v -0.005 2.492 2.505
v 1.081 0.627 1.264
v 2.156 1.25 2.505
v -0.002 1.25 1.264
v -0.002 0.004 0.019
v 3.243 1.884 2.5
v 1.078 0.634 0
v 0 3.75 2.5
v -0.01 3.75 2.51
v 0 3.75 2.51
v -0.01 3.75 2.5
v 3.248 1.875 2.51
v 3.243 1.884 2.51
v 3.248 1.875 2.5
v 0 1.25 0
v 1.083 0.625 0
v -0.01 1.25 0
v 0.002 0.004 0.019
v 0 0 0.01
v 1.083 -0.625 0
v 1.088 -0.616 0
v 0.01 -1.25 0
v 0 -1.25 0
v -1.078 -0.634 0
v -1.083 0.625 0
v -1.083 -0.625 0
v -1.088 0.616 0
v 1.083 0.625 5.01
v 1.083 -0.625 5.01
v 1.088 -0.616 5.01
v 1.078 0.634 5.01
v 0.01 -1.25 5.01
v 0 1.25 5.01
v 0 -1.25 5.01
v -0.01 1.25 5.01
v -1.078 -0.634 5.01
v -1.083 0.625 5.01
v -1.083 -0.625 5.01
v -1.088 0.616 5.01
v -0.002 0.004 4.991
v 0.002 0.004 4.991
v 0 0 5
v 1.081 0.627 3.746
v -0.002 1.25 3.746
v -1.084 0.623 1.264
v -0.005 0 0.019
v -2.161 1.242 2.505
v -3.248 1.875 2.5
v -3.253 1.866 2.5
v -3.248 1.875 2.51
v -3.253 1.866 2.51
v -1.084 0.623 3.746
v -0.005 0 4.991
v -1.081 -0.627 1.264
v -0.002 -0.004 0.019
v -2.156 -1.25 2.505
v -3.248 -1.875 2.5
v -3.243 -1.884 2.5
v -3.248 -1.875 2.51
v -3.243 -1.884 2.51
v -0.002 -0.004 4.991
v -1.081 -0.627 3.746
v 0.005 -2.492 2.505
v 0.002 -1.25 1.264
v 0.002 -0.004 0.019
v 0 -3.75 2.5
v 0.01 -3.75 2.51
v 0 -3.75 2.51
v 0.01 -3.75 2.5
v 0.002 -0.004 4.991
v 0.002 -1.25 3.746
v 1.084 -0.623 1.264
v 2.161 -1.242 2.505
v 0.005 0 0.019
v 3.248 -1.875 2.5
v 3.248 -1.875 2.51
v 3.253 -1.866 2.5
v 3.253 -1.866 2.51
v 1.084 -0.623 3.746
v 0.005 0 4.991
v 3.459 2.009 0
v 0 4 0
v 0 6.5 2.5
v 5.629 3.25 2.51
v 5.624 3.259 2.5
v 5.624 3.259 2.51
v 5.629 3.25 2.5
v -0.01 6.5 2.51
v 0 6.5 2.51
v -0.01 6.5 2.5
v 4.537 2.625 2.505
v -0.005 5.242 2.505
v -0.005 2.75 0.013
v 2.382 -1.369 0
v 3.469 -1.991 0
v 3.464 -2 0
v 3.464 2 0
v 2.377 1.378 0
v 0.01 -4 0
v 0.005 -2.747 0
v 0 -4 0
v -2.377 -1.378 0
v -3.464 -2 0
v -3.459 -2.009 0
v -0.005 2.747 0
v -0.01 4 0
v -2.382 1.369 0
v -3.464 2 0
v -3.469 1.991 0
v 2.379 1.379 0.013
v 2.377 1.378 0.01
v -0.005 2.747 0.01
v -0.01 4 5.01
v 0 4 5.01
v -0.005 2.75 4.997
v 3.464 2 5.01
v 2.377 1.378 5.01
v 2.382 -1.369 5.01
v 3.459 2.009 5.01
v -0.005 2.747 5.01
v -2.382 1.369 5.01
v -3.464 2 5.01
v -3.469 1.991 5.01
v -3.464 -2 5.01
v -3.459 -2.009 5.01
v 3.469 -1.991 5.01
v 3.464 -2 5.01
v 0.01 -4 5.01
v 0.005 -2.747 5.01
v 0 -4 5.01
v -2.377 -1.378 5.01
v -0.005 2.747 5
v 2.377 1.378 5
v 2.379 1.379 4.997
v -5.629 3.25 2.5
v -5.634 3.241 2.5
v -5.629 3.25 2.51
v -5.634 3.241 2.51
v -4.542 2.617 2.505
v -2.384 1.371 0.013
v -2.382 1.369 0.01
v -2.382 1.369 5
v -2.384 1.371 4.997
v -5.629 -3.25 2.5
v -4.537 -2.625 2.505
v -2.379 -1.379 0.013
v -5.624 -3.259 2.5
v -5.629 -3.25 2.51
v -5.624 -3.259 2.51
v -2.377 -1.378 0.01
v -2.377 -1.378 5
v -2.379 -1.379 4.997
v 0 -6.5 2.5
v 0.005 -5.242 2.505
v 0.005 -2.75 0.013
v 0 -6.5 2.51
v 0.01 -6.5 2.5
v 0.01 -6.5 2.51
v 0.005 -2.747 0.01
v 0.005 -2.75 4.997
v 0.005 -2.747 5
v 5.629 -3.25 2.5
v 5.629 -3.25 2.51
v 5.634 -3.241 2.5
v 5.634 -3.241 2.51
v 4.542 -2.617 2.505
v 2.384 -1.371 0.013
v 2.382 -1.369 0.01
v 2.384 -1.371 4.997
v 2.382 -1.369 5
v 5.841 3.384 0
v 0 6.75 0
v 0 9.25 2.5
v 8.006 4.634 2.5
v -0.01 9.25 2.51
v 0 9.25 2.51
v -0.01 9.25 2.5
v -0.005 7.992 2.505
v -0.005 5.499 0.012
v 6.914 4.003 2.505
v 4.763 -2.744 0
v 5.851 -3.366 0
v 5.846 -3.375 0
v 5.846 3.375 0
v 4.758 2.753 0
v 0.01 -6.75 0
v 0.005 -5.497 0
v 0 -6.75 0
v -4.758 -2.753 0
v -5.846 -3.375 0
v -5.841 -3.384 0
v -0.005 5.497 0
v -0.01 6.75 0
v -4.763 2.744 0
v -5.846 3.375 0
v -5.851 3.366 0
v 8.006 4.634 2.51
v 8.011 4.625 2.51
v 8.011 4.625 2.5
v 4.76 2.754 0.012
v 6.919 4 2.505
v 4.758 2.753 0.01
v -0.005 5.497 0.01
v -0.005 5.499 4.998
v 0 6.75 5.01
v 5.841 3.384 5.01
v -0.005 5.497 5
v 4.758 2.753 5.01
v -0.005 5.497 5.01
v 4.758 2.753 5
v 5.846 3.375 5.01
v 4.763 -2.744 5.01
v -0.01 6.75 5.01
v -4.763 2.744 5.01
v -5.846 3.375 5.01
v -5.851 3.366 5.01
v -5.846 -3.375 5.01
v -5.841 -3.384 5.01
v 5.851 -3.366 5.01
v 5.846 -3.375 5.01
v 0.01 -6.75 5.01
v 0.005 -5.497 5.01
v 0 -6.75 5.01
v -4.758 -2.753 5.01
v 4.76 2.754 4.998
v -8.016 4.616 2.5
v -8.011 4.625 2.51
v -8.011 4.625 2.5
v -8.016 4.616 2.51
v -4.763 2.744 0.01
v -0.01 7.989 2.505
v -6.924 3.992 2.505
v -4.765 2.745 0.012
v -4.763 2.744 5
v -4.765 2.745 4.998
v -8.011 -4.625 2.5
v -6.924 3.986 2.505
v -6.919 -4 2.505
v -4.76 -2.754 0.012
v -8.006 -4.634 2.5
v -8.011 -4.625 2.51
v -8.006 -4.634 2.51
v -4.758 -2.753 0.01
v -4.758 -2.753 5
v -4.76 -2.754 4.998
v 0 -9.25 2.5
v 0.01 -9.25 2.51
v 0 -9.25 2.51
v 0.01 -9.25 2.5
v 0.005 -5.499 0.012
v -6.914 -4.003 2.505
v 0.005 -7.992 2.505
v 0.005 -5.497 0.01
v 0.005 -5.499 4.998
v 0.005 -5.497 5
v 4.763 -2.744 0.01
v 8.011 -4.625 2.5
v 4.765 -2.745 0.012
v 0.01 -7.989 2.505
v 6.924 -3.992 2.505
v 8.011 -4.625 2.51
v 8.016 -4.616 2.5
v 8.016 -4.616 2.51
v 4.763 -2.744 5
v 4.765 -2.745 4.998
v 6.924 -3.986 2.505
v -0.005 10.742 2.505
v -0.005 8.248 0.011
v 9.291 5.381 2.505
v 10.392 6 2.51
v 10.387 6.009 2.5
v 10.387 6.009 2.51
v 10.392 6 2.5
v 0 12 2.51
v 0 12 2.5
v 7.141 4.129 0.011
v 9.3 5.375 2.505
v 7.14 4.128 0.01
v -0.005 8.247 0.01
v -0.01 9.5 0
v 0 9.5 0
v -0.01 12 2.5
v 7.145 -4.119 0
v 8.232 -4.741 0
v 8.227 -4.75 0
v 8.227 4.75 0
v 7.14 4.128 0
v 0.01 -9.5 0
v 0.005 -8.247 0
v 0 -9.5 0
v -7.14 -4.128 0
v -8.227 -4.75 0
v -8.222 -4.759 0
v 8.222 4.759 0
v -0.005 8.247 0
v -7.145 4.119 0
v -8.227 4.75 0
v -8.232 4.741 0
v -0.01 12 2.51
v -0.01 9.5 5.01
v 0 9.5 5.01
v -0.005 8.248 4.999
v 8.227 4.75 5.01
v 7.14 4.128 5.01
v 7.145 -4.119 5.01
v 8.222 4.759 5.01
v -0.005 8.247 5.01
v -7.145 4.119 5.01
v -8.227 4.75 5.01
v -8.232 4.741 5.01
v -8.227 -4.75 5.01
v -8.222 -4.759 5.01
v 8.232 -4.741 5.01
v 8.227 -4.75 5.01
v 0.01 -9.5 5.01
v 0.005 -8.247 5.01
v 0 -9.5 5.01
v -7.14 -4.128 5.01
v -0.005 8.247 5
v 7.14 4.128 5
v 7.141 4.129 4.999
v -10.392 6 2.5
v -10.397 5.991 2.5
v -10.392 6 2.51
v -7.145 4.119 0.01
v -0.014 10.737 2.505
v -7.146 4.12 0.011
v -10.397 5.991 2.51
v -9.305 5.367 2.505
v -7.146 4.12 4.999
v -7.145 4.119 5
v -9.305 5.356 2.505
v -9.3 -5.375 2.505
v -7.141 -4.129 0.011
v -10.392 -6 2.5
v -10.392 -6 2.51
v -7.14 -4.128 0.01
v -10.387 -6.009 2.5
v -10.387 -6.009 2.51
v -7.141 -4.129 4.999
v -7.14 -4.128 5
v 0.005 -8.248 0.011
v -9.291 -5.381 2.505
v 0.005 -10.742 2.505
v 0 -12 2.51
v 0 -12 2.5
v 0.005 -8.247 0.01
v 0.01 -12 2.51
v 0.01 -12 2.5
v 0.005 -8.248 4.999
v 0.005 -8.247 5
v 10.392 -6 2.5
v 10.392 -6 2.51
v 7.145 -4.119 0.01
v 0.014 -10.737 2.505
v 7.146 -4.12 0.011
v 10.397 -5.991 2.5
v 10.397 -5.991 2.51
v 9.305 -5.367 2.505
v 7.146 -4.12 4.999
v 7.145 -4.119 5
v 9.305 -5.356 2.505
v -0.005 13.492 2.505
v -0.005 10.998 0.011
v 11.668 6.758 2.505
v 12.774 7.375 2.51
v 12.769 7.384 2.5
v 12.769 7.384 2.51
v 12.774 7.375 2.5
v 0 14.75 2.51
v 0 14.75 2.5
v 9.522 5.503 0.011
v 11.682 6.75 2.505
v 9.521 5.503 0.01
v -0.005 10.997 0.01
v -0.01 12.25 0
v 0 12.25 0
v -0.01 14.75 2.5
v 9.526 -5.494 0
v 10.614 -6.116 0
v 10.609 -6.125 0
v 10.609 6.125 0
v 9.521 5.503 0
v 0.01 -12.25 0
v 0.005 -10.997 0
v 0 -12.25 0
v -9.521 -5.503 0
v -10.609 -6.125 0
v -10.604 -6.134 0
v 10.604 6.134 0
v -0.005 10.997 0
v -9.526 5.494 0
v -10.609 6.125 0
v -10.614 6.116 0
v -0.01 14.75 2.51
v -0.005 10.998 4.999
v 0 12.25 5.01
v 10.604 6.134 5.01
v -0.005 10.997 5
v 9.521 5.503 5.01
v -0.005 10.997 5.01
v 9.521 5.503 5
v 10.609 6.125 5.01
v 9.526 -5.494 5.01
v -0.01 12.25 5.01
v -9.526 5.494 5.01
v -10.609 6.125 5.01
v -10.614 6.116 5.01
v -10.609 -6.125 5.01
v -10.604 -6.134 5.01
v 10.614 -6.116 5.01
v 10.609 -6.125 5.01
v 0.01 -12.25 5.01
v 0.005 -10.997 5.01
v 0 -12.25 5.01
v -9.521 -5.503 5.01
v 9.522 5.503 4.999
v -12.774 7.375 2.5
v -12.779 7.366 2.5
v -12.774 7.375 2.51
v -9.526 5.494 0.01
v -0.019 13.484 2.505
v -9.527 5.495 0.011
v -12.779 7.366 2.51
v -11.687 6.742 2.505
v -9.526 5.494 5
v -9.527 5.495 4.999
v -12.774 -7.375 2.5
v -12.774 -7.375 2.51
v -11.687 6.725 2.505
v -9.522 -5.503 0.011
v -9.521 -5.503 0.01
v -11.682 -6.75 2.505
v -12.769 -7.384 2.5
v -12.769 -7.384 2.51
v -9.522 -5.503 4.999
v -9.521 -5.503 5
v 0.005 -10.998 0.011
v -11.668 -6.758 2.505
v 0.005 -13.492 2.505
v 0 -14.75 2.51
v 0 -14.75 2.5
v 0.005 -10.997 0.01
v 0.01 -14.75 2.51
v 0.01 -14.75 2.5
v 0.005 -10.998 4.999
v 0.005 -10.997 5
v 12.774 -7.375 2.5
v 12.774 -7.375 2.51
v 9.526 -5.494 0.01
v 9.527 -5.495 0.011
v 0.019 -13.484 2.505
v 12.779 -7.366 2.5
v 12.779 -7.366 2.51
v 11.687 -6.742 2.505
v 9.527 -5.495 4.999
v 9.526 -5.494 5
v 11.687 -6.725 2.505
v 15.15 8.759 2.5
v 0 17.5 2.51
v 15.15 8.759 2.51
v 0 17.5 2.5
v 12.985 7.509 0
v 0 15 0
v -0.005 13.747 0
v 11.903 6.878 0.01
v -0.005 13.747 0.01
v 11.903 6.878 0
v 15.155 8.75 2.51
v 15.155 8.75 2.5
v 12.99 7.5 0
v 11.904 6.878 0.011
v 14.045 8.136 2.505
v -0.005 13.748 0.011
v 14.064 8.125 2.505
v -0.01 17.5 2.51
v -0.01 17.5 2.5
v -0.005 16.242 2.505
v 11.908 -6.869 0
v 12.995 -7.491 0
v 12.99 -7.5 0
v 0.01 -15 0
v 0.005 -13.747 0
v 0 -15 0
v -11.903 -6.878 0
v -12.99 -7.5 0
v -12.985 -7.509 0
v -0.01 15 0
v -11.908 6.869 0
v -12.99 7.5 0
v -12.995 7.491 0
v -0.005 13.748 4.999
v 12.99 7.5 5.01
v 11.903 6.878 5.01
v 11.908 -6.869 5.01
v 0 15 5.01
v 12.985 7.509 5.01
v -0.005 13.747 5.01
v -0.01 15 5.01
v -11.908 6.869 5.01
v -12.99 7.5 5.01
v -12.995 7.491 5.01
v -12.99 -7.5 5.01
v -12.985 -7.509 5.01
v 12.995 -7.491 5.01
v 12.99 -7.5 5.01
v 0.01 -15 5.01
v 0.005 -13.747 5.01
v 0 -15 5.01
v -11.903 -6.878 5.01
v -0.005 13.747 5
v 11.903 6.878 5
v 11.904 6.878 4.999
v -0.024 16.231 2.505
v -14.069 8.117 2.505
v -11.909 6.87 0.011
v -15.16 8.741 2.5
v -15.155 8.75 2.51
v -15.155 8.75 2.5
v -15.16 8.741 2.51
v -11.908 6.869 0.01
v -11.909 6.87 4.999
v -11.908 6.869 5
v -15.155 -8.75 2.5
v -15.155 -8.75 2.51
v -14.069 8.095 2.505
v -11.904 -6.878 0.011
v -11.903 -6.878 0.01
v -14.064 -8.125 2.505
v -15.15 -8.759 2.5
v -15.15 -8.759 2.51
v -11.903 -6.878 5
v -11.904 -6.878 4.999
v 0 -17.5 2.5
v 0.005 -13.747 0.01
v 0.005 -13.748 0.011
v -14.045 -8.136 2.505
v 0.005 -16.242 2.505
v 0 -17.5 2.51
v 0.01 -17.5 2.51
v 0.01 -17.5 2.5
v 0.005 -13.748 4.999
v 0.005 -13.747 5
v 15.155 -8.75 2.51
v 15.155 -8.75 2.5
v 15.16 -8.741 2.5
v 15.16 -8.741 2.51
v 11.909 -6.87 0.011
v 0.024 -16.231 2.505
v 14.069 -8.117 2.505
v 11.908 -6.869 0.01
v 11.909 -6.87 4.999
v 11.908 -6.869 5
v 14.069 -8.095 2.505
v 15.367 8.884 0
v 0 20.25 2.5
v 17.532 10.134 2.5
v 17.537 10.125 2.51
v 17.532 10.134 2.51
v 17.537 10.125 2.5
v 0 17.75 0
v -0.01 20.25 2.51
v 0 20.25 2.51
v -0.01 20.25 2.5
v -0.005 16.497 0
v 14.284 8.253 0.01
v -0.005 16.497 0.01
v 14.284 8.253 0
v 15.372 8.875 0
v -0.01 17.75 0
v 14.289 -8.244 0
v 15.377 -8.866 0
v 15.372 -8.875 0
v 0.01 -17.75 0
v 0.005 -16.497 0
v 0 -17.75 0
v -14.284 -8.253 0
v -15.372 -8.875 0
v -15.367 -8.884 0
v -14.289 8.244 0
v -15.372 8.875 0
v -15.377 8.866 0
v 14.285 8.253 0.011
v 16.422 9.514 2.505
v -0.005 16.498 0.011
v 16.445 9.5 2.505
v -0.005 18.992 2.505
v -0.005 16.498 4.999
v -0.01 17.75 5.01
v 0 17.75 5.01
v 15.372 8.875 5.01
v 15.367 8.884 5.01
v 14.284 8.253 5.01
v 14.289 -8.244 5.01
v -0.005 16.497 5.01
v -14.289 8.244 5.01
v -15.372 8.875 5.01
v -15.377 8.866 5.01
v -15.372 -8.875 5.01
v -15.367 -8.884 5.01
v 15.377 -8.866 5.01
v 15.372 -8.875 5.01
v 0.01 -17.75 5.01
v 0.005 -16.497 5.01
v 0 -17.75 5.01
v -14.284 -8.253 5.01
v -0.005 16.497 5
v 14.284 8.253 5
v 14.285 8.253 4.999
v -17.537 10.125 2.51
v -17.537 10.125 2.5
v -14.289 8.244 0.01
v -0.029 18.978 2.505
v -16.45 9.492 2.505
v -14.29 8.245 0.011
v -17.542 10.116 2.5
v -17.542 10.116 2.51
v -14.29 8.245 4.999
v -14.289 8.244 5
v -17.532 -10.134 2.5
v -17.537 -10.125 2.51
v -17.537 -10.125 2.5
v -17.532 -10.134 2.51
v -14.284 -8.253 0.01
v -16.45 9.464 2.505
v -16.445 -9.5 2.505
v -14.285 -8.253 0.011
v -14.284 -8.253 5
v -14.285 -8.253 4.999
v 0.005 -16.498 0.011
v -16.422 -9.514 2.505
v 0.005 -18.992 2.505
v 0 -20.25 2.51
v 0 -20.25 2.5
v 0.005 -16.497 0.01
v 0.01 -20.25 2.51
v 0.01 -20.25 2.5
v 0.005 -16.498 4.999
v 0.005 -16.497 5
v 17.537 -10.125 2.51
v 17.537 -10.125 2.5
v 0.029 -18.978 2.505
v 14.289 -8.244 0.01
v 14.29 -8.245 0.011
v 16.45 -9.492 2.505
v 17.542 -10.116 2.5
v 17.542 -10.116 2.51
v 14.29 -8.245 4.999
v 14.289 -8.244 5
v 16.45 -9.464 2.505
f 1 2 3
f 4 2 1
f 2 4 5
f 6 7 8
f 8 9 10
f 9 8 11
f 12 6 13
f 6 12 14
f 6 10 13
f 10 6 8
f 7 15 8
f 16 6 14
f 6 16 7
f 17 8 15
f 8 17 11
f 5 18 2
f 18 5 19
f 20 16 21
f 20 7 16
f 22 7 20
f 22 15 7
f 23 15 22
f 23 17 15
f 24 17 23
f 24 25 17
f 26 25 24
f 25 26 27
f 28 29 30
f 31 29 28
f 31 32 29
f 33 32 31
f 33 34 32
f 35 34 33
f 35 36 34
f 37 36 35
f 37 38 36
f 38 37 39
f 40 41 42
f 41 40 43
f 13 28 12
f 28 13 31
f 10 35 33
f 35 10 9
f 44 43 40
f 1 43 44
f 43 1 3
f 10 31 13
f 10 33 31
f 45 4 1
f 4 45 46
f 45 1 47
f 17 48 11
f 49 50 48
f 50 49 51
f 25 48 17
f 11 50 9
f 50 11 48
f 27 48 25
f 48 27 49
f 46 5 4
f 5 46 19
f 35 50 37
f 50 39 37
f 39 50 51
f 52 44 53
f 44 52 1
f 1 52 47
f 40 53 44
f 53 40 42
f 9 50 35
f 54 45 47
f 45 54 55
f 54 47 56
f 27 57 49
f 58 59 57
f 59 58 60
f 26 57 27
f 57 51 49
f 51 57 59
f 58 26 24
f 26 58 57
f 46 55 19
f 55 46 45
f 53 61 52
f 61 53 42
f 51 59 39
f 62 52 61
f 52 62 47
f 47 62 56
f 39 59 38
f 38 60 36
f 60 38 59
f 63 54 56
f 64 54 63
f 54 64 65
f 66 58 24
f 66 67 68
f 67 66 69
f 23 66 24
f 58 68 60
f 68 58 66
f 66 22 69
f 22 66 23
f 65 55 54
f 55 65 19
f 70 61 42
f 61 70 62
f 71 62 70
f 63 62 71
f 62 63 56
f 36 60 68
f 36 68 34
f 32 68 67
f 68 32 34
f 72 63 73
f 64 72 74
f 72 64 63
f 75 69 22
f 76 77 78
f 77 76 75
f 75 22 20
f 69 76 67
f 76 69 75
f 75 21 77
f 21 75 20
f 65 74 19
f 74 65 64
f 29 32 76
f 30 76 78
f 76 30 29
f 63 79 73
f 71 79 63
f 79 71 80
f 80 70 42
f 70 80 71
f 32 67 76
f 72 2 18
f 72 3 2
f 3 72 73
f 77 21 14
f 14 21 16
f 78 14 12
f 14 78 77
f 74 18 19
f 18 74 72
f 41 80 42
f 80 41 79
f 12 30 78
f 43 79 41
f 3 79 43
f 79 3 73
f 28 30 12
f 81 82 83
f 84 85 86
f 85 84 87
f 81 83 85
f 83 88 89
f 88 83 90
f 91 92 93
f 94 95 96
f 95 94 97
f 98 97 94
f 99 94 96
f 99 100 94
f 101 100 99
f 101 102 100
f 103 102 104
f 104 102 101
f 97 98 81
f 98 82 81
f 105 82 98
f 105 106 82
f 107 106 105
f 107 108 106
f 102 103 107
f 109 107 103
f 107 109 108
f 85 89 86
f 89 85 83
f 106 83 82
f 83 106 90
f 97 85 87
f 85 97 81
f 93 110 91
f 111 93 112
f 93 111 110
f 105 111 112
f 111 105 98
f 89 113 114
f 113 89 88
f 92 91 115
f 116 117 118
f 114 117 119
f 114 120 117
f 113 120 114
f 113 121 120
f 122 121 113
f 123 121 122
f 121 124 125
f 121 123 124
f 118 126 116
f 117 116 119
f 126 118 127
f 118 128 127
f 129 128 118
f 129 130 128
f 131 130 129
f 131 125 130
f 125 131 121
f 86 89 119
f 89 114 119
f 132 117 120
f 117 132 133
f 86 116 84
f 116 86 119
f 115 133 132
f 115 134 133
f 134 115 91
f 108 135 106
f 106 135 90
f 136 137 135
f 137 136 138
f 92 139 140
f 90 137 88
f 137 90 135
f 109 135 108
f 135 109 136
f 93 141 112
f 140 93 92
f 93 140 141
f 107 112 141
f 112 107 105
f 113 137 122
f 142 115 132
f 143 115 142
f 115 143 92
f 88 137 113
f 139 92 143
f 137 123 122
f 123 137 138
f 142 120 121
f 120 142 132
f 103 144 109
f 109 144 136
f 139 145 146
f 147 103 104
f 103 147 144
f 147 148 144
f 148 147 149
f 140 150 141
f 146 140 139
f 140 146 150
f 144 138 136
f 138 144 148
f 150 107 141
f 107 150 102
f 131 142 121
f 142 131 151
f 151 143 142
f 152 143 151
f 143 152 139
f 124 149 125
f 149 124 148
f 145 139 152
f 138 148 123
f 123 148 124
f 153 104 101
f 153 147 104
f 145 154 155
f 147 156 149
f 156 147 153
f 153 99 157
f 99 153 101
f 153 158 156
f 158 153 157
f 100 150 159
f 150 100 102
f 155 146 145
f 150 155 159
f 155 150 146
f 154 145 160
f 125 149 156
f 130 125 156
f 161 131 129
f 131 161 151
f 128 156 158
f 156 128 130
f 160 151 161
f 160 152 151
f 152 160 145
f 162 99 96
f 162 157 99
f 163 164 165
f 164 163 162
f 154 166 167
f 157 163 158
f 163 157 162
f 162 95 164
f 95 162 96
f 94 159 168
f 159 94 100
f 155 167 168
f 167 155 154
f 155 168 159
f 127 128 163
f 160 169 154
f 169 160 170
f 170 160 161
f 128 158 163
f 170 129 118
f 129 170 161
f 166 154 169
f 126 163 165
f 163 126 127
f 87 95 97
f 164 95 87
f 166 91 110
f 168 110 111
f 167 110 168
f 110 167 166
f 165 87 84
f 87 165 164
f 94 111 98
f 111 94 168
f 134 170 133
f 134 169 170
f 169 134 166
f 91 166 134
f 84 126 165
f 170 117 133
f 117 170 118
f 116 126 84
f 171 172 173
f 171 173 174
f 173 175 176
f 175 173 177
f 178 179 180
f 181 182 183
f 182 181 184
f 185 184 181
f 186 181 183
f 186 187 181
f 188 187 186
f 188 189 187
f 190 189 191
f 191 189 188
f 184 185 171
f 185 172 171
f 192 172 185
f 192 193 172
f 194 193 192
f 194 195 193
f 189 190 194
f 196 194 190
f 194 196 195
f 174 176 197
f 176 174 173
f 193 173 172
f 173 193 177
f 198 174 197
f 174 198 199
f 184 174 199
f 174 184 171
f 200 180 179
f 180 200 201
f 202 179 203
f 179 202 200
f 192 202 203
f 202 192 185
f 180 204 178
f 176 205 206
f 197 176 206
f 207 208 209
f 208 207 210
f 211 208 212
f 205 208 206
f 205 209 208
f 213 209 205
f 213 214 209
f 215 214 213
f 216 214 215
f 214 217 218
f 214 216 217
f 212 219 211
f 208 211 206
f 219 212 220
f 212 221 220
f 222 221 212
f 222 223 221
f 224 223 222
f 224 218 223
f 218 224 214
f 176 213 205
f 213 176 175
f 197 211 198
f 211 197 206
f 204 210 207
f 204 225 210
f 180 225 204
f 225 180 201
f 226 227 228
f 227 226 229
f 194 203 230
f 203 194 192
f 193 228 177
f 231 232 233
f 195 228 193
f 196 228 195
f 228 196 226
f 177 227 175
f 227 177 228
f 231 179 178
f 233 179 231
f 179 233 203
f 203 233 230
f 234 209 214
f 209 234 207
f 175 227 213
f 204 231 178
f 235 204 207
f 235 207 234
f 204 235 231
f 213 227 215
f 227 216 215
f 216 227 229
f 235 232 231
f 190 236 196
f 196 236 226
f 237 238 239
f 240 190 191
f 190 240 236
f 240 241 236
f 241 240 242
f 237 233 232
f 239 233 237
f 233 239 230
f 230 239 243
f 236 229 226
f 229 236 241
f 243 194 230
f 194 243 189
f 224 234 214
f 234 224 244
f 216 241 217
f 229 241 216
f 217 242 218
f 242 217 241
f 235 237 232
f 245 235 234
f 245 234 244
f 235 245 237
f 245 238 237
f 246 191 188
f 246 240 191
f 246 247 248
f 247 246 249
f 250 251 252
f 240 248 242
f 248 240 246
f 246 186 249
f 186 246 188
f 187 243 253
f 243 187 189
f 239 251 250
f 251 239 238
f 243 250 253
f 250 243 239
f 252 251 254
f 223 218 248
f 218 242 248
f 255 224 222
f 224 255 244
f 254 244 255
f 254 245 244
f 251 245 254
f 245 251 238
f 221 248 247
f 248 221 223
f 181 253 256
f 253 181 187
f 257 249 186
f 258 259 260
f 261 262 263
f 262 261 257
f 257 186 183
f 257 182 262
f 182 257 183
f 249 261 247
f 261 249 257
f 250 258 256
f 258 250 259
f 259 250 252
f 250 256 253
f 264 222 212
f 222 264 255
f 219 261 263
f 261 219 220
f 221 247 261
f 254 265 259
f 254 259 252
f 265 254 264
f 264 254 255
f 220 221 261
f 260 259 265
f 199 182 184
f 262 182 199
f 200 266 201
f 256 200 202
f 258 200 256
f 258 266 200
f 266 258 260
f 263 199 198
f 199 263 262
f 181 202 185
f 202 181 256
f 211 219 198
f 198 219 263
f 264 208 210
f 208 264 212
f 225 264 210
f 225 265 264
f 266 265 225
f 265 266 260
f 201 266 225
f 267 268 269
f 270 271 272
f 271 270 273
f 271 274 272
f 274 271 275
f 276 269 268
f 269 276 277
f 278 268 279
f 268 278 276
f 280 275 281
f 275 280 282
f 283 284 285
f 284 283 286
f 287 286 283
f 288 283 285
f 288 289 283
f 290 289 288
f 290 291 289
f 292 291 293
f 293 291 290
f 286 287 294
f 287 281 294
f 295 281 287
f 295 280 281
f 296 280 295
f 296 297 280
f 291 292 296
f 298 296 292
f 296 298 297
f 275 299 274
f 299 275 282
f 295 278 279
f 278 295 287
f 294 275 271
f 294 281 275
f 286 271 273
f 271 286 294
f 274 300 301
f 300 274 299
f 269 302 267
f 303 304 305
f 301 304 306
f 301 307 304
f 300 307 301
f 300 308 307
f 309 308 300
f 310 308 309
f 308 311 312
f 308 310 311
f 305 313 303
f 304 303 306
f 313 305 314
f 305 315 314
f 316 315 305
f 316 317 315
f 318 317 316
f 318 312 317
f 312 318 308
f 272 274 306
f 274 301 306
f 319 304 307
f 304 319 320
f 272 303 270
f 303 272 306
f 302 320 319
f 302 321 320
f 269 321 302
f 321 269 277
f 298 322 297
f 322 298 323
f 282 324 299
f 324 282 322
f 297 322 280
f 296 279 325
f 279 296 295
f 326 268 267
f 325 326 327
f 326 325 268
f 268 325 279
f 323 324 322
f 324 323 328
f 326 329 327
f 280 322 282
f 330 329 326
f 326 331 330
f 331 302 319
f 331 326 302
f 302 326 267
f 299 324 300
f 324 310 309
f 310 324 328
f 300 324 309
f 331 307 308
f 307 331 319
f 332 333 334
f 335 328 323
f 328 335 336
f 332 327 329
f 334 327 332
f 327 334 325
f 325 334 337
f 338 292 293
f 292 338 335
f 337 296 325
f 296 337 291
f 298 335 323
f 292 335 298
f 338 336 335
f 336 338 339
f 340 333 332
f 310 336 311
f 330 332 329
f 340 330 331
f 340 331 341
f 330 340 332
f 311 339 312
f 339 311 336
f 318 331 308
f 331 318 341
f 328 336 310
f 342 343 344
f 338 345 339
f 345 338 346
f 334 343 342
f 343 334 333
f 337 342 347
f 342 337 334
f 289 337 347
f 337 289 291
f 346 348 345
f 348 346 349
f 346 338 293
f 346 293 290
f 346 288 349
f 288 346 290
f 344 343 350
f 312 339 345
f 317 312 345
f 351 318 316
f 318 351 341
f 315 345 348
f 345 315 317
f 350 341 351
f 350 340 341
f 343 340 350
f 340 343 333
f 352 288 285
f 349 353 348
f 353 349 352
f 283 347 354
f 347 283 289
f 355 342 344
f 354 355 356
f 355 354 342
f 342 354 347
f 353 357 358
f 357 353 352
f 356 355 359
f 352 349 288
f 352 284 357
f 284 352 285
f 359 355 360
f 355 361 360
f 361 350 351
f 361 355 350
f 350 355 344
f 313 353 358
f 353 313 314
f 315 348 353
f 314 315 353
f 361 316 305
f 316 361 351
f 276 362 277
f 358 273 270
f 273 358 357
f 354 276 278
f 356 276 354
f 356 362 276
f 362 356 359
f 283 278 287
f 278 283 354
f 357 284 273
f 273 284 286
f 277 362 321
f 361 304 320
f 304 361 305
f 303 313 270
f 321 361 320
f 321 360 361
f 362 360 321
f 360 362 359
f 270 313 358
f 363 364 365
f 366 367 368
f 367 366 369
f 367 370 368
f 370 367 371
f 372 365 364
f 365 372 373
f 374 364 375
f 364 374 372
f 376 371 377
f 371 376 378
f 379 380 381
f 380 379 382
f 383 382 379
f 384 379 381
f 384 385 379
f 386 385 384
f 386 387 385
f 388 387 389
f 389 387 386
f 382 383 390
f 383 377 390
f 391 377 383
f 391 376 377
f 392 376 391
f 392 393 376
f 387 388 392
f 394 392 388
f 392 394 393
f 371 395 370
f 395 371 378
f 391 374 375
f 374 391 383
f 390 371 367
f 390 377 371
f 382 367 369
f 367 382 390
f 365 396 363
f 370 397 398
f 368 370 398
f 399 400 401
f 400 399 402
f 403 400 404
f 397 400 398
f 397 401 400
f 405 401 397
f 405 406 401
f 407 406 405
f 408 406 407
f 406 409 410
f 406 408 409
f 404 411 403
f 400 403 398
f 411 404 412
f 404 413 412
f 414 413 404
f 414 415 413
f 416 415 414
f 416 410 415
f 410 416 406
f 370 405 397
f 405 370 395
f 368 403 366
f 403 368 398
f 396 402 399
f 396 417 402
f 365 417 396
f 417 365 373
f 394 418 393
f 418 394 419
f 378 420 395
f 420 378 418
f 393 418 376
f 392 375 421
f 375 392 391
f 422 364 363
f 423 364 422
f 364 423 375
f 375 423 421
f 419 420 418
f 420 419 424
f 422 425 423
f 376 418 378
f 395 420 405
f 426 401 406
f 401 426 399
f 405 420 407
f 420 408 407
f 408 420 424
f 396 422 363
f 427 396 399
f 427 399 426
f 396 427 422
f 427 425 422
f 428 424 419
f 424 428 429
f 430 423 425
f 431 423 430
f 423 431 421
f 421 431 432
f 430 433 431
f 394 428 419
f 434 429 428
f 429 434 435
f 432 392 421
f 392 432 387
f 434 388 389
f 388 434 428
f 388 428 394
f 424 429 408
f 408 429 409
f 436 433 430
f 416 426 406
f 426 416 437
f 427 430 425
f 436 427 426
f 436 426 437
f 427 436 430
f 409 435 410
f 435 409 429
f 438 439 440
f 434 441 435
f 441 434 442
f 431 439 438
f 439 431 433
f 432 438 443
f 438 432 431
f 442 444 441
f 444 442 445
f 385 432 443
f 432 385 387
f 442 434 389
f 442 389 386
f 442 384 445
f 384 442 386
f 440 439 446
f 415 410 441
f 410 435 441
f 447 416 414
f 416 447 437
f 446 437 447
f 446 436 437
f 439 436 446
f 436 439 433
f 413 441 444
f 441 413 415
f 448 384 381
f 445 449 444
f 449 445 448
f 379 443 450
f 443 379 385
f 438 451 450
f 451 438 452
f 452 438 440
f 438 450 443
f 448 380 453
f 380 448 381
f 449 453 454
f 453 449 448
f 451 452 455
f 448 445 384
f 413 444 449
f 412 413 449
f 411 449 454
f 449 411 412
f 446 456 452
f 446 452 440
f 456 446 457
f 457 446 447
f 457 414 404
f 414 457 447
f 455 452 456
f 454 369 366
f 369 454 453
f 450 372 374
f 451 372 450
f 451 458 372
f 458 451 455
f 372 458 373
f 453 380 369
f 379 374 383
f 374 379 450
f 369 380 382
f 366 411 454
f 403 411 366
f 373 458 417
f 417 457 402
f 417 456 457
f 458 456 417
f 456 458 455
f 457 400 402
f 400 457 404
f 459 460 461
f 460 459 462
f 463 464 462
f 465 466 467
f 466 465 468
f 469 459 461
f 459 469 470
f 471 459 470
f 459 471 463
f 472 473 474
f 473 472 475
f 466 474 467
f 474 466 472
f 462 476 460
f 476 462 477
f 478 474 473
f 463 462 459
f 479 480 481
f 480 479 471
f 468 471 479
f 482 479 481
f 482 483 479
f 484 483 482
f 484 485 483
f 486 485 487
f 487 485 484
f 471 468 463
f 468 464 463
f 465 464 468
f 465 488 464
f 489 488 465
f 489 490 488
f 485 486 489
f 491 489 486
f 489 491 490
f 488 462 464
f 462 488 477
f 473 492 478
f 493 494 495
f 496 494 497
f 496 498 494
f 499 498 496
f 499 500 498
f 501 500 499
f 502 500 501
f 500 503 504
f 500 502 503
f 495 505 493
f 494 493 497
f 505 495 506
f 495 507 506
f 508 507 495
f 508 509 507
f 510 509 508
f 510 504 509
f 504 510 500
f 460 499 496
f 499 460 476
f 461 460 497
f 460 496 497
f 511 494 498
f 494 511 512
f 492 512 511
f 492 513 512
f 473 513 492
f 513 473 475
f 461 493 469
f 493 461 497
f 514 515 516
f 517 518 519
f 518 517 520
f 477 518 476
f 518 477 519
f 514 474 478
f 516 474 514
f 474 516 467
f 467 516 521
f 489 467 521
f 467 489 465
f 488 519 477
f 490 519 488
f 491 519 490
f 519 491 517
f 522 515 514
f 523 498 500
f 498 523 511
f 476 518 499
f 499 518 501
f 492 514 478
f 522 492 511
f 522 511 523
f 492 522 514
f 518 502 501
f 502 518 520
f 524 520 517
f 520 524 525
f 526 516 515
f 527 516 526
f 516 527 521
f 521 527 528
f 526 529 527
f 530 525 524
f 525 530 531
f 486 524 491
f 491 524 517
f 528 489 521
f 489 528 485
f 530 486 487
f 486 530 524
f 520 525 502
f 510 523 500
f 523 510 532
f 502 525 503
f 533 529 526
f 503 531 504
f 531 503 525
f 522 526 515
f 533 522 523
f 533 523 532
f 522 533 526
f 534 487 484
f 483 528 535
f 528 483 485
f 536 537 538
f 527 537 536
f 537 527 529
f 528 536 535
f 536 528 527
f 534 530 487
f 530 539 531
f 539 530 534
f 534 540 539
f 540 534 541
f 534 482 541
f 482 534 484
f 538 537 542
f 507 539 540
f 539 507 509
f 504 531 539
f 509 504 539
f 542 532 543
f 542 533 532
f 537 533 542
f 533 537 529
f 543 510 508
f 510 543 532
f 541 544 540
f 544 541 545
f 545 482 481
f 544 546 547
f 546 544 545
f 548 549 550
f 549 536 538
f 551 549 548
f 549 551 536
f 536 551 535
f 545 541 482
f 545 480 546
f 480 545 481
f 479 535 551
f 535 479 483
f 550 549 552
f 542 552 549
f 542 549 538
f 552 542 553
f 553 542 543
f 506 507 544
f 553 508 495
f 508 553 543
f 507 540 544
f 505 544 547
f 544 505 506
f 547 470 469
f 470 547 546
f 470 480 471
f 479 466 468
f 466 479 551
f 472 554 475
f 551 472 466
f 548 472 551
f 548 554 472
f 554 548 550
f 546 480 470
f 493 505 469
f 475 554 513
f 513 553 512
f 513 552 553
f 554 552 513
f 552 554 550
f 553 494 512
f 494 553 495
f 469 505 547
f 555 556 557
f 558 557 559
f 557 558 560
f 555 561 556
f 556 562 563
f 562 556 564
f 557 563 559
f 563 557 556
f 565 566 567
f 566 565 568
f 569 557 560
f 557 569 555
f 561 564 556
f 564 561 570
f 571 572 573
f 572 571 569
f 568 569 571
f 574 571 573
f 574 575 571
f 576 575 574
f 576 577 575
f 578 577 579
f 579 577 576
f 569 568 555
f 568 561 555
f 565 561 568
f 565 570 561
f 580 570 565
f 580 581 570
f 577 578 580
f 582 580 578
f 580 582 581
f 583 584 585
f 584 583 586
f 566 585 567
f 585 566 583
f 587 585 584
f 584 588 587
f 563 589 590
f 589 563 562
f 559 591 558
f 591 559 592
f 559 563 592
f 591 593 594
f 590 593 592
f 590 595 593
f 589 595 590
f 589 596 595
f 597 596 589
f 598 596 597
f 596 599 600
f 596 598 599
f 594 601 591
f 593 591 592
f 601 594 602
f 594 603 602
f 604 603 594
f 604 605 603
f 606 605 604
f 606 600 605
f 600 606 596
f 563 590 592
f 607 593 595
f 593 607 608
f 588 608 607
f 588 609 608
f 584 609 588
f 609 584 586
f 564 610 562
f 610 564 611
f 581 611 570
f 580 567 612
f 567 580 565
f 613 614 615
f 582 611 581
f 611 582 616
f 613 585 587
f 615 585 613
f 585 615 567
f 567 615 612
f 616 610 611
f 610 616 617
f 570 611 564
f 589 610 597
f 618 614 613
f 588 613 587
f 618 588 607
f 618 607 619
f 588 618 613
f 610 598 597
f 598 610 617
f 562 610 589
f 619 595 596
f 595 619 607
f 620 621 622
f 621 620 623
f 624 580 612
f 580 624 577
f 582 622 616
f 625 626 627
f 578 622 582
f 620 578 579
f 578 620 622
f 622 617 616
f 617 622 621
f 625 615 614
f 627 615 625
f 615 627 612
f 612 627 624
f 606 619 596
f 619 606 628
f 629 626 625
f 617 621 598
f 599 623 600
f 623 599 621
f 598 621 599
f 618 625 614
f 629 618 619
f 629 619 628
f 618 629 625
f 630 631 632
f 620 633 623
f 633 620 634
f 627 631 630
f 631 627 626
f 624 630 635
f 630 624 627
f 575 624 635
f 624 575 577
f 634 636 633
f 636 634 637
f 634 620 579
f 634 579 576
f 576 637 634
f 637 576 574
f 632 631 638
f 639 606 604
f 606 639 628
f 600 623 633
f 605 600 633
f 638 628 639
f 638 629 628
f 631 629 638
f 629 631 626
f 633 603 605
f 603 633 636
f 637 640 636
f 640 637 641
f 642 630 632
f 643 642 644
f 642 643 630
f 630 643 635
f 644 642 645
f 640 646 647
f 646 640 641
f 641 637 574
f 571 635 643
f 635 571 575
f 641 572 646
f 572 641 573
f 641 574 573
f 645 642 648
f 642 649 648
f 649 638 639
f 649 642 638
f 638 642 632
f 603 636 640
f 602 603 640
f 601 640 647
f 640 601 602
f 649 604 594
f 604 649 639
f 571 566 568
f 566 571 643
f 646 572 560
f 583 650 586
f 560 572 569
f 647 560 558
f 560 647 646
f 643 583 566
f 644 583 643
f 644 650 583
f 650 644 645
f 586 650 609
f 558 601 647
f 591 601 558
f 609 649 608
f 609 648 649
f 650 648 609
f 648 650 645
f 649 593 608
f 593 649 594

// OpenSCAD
// file: lib.scad
NB_SIDES   = 6;
ATOM       = .01;
CUT        = $preview;

module side_bottom(base, height, shift) {
    hull() {
        cube([base, ATOM, ATOM]);
        translate([shift, 0, height/2])
        cube([base, ATOM, ATOM]);
    }
}

module side_top(base, height, shift) {
    hull() {
        translate([0, 0, height])
        cube([base, ATOM, ATOM]);
        translate([shift, 0, height/2])
        cube([base, ATOM, ATOM]);
    }
}

module piece(radius, base, height, shift) {
    n = CUT ? NB_SIDES/2-1 : NB_SIDES-1;
    for (i=[0:n]) {

        hull() {
            rotate([0, 0, 360/NB_SIDES*i])
            translate([radius, 0, 0]) side_bottom(base, height, shift);

            rotate([0, 0, 360/NB_SIDES*(i+1)])
            translate([radius, 0, 0]) side_bottom(base, height, shift);
        }

        hull() {
            rotate([0, 0, 360/NB_SIDES*i])
            translate([radius, 0, 0]) side_top(base, height, shift);

            rotate([0, 0, 360/NB_SIDES*(i+1)])
            translate([radius, 0, 0]) side_top(base, height, shift);
        }
    }
}

module fidget(radius_min, radius_max, base, height, shift, gap) {
    step = base + gap;
    rotate([0, 0, $preview ? 0 : 30])
    for (r=[radius_min:step:radius_max]) piece(r, base, height, shift);
}
// main file
use <lib.scad>

GAP        = 1.5; // 1.2; // .75; // .5; //.33;
BASE       = 1.25;

HEIGHT     = 5;
DIAMETER   = 160;

SHIFT      = HEIGHT/2; // GAP; // GAP/2; // 0; //.2;


RADIUS_MIN = 0;
_RADIUS_MAX = DIAMETER/2;
RADIUS_MAX = 30/2 +2;

fidget(RADIUS_MIN, RADIUS_MAX, BASE, HEIGHT, SHIFT, GAP);
